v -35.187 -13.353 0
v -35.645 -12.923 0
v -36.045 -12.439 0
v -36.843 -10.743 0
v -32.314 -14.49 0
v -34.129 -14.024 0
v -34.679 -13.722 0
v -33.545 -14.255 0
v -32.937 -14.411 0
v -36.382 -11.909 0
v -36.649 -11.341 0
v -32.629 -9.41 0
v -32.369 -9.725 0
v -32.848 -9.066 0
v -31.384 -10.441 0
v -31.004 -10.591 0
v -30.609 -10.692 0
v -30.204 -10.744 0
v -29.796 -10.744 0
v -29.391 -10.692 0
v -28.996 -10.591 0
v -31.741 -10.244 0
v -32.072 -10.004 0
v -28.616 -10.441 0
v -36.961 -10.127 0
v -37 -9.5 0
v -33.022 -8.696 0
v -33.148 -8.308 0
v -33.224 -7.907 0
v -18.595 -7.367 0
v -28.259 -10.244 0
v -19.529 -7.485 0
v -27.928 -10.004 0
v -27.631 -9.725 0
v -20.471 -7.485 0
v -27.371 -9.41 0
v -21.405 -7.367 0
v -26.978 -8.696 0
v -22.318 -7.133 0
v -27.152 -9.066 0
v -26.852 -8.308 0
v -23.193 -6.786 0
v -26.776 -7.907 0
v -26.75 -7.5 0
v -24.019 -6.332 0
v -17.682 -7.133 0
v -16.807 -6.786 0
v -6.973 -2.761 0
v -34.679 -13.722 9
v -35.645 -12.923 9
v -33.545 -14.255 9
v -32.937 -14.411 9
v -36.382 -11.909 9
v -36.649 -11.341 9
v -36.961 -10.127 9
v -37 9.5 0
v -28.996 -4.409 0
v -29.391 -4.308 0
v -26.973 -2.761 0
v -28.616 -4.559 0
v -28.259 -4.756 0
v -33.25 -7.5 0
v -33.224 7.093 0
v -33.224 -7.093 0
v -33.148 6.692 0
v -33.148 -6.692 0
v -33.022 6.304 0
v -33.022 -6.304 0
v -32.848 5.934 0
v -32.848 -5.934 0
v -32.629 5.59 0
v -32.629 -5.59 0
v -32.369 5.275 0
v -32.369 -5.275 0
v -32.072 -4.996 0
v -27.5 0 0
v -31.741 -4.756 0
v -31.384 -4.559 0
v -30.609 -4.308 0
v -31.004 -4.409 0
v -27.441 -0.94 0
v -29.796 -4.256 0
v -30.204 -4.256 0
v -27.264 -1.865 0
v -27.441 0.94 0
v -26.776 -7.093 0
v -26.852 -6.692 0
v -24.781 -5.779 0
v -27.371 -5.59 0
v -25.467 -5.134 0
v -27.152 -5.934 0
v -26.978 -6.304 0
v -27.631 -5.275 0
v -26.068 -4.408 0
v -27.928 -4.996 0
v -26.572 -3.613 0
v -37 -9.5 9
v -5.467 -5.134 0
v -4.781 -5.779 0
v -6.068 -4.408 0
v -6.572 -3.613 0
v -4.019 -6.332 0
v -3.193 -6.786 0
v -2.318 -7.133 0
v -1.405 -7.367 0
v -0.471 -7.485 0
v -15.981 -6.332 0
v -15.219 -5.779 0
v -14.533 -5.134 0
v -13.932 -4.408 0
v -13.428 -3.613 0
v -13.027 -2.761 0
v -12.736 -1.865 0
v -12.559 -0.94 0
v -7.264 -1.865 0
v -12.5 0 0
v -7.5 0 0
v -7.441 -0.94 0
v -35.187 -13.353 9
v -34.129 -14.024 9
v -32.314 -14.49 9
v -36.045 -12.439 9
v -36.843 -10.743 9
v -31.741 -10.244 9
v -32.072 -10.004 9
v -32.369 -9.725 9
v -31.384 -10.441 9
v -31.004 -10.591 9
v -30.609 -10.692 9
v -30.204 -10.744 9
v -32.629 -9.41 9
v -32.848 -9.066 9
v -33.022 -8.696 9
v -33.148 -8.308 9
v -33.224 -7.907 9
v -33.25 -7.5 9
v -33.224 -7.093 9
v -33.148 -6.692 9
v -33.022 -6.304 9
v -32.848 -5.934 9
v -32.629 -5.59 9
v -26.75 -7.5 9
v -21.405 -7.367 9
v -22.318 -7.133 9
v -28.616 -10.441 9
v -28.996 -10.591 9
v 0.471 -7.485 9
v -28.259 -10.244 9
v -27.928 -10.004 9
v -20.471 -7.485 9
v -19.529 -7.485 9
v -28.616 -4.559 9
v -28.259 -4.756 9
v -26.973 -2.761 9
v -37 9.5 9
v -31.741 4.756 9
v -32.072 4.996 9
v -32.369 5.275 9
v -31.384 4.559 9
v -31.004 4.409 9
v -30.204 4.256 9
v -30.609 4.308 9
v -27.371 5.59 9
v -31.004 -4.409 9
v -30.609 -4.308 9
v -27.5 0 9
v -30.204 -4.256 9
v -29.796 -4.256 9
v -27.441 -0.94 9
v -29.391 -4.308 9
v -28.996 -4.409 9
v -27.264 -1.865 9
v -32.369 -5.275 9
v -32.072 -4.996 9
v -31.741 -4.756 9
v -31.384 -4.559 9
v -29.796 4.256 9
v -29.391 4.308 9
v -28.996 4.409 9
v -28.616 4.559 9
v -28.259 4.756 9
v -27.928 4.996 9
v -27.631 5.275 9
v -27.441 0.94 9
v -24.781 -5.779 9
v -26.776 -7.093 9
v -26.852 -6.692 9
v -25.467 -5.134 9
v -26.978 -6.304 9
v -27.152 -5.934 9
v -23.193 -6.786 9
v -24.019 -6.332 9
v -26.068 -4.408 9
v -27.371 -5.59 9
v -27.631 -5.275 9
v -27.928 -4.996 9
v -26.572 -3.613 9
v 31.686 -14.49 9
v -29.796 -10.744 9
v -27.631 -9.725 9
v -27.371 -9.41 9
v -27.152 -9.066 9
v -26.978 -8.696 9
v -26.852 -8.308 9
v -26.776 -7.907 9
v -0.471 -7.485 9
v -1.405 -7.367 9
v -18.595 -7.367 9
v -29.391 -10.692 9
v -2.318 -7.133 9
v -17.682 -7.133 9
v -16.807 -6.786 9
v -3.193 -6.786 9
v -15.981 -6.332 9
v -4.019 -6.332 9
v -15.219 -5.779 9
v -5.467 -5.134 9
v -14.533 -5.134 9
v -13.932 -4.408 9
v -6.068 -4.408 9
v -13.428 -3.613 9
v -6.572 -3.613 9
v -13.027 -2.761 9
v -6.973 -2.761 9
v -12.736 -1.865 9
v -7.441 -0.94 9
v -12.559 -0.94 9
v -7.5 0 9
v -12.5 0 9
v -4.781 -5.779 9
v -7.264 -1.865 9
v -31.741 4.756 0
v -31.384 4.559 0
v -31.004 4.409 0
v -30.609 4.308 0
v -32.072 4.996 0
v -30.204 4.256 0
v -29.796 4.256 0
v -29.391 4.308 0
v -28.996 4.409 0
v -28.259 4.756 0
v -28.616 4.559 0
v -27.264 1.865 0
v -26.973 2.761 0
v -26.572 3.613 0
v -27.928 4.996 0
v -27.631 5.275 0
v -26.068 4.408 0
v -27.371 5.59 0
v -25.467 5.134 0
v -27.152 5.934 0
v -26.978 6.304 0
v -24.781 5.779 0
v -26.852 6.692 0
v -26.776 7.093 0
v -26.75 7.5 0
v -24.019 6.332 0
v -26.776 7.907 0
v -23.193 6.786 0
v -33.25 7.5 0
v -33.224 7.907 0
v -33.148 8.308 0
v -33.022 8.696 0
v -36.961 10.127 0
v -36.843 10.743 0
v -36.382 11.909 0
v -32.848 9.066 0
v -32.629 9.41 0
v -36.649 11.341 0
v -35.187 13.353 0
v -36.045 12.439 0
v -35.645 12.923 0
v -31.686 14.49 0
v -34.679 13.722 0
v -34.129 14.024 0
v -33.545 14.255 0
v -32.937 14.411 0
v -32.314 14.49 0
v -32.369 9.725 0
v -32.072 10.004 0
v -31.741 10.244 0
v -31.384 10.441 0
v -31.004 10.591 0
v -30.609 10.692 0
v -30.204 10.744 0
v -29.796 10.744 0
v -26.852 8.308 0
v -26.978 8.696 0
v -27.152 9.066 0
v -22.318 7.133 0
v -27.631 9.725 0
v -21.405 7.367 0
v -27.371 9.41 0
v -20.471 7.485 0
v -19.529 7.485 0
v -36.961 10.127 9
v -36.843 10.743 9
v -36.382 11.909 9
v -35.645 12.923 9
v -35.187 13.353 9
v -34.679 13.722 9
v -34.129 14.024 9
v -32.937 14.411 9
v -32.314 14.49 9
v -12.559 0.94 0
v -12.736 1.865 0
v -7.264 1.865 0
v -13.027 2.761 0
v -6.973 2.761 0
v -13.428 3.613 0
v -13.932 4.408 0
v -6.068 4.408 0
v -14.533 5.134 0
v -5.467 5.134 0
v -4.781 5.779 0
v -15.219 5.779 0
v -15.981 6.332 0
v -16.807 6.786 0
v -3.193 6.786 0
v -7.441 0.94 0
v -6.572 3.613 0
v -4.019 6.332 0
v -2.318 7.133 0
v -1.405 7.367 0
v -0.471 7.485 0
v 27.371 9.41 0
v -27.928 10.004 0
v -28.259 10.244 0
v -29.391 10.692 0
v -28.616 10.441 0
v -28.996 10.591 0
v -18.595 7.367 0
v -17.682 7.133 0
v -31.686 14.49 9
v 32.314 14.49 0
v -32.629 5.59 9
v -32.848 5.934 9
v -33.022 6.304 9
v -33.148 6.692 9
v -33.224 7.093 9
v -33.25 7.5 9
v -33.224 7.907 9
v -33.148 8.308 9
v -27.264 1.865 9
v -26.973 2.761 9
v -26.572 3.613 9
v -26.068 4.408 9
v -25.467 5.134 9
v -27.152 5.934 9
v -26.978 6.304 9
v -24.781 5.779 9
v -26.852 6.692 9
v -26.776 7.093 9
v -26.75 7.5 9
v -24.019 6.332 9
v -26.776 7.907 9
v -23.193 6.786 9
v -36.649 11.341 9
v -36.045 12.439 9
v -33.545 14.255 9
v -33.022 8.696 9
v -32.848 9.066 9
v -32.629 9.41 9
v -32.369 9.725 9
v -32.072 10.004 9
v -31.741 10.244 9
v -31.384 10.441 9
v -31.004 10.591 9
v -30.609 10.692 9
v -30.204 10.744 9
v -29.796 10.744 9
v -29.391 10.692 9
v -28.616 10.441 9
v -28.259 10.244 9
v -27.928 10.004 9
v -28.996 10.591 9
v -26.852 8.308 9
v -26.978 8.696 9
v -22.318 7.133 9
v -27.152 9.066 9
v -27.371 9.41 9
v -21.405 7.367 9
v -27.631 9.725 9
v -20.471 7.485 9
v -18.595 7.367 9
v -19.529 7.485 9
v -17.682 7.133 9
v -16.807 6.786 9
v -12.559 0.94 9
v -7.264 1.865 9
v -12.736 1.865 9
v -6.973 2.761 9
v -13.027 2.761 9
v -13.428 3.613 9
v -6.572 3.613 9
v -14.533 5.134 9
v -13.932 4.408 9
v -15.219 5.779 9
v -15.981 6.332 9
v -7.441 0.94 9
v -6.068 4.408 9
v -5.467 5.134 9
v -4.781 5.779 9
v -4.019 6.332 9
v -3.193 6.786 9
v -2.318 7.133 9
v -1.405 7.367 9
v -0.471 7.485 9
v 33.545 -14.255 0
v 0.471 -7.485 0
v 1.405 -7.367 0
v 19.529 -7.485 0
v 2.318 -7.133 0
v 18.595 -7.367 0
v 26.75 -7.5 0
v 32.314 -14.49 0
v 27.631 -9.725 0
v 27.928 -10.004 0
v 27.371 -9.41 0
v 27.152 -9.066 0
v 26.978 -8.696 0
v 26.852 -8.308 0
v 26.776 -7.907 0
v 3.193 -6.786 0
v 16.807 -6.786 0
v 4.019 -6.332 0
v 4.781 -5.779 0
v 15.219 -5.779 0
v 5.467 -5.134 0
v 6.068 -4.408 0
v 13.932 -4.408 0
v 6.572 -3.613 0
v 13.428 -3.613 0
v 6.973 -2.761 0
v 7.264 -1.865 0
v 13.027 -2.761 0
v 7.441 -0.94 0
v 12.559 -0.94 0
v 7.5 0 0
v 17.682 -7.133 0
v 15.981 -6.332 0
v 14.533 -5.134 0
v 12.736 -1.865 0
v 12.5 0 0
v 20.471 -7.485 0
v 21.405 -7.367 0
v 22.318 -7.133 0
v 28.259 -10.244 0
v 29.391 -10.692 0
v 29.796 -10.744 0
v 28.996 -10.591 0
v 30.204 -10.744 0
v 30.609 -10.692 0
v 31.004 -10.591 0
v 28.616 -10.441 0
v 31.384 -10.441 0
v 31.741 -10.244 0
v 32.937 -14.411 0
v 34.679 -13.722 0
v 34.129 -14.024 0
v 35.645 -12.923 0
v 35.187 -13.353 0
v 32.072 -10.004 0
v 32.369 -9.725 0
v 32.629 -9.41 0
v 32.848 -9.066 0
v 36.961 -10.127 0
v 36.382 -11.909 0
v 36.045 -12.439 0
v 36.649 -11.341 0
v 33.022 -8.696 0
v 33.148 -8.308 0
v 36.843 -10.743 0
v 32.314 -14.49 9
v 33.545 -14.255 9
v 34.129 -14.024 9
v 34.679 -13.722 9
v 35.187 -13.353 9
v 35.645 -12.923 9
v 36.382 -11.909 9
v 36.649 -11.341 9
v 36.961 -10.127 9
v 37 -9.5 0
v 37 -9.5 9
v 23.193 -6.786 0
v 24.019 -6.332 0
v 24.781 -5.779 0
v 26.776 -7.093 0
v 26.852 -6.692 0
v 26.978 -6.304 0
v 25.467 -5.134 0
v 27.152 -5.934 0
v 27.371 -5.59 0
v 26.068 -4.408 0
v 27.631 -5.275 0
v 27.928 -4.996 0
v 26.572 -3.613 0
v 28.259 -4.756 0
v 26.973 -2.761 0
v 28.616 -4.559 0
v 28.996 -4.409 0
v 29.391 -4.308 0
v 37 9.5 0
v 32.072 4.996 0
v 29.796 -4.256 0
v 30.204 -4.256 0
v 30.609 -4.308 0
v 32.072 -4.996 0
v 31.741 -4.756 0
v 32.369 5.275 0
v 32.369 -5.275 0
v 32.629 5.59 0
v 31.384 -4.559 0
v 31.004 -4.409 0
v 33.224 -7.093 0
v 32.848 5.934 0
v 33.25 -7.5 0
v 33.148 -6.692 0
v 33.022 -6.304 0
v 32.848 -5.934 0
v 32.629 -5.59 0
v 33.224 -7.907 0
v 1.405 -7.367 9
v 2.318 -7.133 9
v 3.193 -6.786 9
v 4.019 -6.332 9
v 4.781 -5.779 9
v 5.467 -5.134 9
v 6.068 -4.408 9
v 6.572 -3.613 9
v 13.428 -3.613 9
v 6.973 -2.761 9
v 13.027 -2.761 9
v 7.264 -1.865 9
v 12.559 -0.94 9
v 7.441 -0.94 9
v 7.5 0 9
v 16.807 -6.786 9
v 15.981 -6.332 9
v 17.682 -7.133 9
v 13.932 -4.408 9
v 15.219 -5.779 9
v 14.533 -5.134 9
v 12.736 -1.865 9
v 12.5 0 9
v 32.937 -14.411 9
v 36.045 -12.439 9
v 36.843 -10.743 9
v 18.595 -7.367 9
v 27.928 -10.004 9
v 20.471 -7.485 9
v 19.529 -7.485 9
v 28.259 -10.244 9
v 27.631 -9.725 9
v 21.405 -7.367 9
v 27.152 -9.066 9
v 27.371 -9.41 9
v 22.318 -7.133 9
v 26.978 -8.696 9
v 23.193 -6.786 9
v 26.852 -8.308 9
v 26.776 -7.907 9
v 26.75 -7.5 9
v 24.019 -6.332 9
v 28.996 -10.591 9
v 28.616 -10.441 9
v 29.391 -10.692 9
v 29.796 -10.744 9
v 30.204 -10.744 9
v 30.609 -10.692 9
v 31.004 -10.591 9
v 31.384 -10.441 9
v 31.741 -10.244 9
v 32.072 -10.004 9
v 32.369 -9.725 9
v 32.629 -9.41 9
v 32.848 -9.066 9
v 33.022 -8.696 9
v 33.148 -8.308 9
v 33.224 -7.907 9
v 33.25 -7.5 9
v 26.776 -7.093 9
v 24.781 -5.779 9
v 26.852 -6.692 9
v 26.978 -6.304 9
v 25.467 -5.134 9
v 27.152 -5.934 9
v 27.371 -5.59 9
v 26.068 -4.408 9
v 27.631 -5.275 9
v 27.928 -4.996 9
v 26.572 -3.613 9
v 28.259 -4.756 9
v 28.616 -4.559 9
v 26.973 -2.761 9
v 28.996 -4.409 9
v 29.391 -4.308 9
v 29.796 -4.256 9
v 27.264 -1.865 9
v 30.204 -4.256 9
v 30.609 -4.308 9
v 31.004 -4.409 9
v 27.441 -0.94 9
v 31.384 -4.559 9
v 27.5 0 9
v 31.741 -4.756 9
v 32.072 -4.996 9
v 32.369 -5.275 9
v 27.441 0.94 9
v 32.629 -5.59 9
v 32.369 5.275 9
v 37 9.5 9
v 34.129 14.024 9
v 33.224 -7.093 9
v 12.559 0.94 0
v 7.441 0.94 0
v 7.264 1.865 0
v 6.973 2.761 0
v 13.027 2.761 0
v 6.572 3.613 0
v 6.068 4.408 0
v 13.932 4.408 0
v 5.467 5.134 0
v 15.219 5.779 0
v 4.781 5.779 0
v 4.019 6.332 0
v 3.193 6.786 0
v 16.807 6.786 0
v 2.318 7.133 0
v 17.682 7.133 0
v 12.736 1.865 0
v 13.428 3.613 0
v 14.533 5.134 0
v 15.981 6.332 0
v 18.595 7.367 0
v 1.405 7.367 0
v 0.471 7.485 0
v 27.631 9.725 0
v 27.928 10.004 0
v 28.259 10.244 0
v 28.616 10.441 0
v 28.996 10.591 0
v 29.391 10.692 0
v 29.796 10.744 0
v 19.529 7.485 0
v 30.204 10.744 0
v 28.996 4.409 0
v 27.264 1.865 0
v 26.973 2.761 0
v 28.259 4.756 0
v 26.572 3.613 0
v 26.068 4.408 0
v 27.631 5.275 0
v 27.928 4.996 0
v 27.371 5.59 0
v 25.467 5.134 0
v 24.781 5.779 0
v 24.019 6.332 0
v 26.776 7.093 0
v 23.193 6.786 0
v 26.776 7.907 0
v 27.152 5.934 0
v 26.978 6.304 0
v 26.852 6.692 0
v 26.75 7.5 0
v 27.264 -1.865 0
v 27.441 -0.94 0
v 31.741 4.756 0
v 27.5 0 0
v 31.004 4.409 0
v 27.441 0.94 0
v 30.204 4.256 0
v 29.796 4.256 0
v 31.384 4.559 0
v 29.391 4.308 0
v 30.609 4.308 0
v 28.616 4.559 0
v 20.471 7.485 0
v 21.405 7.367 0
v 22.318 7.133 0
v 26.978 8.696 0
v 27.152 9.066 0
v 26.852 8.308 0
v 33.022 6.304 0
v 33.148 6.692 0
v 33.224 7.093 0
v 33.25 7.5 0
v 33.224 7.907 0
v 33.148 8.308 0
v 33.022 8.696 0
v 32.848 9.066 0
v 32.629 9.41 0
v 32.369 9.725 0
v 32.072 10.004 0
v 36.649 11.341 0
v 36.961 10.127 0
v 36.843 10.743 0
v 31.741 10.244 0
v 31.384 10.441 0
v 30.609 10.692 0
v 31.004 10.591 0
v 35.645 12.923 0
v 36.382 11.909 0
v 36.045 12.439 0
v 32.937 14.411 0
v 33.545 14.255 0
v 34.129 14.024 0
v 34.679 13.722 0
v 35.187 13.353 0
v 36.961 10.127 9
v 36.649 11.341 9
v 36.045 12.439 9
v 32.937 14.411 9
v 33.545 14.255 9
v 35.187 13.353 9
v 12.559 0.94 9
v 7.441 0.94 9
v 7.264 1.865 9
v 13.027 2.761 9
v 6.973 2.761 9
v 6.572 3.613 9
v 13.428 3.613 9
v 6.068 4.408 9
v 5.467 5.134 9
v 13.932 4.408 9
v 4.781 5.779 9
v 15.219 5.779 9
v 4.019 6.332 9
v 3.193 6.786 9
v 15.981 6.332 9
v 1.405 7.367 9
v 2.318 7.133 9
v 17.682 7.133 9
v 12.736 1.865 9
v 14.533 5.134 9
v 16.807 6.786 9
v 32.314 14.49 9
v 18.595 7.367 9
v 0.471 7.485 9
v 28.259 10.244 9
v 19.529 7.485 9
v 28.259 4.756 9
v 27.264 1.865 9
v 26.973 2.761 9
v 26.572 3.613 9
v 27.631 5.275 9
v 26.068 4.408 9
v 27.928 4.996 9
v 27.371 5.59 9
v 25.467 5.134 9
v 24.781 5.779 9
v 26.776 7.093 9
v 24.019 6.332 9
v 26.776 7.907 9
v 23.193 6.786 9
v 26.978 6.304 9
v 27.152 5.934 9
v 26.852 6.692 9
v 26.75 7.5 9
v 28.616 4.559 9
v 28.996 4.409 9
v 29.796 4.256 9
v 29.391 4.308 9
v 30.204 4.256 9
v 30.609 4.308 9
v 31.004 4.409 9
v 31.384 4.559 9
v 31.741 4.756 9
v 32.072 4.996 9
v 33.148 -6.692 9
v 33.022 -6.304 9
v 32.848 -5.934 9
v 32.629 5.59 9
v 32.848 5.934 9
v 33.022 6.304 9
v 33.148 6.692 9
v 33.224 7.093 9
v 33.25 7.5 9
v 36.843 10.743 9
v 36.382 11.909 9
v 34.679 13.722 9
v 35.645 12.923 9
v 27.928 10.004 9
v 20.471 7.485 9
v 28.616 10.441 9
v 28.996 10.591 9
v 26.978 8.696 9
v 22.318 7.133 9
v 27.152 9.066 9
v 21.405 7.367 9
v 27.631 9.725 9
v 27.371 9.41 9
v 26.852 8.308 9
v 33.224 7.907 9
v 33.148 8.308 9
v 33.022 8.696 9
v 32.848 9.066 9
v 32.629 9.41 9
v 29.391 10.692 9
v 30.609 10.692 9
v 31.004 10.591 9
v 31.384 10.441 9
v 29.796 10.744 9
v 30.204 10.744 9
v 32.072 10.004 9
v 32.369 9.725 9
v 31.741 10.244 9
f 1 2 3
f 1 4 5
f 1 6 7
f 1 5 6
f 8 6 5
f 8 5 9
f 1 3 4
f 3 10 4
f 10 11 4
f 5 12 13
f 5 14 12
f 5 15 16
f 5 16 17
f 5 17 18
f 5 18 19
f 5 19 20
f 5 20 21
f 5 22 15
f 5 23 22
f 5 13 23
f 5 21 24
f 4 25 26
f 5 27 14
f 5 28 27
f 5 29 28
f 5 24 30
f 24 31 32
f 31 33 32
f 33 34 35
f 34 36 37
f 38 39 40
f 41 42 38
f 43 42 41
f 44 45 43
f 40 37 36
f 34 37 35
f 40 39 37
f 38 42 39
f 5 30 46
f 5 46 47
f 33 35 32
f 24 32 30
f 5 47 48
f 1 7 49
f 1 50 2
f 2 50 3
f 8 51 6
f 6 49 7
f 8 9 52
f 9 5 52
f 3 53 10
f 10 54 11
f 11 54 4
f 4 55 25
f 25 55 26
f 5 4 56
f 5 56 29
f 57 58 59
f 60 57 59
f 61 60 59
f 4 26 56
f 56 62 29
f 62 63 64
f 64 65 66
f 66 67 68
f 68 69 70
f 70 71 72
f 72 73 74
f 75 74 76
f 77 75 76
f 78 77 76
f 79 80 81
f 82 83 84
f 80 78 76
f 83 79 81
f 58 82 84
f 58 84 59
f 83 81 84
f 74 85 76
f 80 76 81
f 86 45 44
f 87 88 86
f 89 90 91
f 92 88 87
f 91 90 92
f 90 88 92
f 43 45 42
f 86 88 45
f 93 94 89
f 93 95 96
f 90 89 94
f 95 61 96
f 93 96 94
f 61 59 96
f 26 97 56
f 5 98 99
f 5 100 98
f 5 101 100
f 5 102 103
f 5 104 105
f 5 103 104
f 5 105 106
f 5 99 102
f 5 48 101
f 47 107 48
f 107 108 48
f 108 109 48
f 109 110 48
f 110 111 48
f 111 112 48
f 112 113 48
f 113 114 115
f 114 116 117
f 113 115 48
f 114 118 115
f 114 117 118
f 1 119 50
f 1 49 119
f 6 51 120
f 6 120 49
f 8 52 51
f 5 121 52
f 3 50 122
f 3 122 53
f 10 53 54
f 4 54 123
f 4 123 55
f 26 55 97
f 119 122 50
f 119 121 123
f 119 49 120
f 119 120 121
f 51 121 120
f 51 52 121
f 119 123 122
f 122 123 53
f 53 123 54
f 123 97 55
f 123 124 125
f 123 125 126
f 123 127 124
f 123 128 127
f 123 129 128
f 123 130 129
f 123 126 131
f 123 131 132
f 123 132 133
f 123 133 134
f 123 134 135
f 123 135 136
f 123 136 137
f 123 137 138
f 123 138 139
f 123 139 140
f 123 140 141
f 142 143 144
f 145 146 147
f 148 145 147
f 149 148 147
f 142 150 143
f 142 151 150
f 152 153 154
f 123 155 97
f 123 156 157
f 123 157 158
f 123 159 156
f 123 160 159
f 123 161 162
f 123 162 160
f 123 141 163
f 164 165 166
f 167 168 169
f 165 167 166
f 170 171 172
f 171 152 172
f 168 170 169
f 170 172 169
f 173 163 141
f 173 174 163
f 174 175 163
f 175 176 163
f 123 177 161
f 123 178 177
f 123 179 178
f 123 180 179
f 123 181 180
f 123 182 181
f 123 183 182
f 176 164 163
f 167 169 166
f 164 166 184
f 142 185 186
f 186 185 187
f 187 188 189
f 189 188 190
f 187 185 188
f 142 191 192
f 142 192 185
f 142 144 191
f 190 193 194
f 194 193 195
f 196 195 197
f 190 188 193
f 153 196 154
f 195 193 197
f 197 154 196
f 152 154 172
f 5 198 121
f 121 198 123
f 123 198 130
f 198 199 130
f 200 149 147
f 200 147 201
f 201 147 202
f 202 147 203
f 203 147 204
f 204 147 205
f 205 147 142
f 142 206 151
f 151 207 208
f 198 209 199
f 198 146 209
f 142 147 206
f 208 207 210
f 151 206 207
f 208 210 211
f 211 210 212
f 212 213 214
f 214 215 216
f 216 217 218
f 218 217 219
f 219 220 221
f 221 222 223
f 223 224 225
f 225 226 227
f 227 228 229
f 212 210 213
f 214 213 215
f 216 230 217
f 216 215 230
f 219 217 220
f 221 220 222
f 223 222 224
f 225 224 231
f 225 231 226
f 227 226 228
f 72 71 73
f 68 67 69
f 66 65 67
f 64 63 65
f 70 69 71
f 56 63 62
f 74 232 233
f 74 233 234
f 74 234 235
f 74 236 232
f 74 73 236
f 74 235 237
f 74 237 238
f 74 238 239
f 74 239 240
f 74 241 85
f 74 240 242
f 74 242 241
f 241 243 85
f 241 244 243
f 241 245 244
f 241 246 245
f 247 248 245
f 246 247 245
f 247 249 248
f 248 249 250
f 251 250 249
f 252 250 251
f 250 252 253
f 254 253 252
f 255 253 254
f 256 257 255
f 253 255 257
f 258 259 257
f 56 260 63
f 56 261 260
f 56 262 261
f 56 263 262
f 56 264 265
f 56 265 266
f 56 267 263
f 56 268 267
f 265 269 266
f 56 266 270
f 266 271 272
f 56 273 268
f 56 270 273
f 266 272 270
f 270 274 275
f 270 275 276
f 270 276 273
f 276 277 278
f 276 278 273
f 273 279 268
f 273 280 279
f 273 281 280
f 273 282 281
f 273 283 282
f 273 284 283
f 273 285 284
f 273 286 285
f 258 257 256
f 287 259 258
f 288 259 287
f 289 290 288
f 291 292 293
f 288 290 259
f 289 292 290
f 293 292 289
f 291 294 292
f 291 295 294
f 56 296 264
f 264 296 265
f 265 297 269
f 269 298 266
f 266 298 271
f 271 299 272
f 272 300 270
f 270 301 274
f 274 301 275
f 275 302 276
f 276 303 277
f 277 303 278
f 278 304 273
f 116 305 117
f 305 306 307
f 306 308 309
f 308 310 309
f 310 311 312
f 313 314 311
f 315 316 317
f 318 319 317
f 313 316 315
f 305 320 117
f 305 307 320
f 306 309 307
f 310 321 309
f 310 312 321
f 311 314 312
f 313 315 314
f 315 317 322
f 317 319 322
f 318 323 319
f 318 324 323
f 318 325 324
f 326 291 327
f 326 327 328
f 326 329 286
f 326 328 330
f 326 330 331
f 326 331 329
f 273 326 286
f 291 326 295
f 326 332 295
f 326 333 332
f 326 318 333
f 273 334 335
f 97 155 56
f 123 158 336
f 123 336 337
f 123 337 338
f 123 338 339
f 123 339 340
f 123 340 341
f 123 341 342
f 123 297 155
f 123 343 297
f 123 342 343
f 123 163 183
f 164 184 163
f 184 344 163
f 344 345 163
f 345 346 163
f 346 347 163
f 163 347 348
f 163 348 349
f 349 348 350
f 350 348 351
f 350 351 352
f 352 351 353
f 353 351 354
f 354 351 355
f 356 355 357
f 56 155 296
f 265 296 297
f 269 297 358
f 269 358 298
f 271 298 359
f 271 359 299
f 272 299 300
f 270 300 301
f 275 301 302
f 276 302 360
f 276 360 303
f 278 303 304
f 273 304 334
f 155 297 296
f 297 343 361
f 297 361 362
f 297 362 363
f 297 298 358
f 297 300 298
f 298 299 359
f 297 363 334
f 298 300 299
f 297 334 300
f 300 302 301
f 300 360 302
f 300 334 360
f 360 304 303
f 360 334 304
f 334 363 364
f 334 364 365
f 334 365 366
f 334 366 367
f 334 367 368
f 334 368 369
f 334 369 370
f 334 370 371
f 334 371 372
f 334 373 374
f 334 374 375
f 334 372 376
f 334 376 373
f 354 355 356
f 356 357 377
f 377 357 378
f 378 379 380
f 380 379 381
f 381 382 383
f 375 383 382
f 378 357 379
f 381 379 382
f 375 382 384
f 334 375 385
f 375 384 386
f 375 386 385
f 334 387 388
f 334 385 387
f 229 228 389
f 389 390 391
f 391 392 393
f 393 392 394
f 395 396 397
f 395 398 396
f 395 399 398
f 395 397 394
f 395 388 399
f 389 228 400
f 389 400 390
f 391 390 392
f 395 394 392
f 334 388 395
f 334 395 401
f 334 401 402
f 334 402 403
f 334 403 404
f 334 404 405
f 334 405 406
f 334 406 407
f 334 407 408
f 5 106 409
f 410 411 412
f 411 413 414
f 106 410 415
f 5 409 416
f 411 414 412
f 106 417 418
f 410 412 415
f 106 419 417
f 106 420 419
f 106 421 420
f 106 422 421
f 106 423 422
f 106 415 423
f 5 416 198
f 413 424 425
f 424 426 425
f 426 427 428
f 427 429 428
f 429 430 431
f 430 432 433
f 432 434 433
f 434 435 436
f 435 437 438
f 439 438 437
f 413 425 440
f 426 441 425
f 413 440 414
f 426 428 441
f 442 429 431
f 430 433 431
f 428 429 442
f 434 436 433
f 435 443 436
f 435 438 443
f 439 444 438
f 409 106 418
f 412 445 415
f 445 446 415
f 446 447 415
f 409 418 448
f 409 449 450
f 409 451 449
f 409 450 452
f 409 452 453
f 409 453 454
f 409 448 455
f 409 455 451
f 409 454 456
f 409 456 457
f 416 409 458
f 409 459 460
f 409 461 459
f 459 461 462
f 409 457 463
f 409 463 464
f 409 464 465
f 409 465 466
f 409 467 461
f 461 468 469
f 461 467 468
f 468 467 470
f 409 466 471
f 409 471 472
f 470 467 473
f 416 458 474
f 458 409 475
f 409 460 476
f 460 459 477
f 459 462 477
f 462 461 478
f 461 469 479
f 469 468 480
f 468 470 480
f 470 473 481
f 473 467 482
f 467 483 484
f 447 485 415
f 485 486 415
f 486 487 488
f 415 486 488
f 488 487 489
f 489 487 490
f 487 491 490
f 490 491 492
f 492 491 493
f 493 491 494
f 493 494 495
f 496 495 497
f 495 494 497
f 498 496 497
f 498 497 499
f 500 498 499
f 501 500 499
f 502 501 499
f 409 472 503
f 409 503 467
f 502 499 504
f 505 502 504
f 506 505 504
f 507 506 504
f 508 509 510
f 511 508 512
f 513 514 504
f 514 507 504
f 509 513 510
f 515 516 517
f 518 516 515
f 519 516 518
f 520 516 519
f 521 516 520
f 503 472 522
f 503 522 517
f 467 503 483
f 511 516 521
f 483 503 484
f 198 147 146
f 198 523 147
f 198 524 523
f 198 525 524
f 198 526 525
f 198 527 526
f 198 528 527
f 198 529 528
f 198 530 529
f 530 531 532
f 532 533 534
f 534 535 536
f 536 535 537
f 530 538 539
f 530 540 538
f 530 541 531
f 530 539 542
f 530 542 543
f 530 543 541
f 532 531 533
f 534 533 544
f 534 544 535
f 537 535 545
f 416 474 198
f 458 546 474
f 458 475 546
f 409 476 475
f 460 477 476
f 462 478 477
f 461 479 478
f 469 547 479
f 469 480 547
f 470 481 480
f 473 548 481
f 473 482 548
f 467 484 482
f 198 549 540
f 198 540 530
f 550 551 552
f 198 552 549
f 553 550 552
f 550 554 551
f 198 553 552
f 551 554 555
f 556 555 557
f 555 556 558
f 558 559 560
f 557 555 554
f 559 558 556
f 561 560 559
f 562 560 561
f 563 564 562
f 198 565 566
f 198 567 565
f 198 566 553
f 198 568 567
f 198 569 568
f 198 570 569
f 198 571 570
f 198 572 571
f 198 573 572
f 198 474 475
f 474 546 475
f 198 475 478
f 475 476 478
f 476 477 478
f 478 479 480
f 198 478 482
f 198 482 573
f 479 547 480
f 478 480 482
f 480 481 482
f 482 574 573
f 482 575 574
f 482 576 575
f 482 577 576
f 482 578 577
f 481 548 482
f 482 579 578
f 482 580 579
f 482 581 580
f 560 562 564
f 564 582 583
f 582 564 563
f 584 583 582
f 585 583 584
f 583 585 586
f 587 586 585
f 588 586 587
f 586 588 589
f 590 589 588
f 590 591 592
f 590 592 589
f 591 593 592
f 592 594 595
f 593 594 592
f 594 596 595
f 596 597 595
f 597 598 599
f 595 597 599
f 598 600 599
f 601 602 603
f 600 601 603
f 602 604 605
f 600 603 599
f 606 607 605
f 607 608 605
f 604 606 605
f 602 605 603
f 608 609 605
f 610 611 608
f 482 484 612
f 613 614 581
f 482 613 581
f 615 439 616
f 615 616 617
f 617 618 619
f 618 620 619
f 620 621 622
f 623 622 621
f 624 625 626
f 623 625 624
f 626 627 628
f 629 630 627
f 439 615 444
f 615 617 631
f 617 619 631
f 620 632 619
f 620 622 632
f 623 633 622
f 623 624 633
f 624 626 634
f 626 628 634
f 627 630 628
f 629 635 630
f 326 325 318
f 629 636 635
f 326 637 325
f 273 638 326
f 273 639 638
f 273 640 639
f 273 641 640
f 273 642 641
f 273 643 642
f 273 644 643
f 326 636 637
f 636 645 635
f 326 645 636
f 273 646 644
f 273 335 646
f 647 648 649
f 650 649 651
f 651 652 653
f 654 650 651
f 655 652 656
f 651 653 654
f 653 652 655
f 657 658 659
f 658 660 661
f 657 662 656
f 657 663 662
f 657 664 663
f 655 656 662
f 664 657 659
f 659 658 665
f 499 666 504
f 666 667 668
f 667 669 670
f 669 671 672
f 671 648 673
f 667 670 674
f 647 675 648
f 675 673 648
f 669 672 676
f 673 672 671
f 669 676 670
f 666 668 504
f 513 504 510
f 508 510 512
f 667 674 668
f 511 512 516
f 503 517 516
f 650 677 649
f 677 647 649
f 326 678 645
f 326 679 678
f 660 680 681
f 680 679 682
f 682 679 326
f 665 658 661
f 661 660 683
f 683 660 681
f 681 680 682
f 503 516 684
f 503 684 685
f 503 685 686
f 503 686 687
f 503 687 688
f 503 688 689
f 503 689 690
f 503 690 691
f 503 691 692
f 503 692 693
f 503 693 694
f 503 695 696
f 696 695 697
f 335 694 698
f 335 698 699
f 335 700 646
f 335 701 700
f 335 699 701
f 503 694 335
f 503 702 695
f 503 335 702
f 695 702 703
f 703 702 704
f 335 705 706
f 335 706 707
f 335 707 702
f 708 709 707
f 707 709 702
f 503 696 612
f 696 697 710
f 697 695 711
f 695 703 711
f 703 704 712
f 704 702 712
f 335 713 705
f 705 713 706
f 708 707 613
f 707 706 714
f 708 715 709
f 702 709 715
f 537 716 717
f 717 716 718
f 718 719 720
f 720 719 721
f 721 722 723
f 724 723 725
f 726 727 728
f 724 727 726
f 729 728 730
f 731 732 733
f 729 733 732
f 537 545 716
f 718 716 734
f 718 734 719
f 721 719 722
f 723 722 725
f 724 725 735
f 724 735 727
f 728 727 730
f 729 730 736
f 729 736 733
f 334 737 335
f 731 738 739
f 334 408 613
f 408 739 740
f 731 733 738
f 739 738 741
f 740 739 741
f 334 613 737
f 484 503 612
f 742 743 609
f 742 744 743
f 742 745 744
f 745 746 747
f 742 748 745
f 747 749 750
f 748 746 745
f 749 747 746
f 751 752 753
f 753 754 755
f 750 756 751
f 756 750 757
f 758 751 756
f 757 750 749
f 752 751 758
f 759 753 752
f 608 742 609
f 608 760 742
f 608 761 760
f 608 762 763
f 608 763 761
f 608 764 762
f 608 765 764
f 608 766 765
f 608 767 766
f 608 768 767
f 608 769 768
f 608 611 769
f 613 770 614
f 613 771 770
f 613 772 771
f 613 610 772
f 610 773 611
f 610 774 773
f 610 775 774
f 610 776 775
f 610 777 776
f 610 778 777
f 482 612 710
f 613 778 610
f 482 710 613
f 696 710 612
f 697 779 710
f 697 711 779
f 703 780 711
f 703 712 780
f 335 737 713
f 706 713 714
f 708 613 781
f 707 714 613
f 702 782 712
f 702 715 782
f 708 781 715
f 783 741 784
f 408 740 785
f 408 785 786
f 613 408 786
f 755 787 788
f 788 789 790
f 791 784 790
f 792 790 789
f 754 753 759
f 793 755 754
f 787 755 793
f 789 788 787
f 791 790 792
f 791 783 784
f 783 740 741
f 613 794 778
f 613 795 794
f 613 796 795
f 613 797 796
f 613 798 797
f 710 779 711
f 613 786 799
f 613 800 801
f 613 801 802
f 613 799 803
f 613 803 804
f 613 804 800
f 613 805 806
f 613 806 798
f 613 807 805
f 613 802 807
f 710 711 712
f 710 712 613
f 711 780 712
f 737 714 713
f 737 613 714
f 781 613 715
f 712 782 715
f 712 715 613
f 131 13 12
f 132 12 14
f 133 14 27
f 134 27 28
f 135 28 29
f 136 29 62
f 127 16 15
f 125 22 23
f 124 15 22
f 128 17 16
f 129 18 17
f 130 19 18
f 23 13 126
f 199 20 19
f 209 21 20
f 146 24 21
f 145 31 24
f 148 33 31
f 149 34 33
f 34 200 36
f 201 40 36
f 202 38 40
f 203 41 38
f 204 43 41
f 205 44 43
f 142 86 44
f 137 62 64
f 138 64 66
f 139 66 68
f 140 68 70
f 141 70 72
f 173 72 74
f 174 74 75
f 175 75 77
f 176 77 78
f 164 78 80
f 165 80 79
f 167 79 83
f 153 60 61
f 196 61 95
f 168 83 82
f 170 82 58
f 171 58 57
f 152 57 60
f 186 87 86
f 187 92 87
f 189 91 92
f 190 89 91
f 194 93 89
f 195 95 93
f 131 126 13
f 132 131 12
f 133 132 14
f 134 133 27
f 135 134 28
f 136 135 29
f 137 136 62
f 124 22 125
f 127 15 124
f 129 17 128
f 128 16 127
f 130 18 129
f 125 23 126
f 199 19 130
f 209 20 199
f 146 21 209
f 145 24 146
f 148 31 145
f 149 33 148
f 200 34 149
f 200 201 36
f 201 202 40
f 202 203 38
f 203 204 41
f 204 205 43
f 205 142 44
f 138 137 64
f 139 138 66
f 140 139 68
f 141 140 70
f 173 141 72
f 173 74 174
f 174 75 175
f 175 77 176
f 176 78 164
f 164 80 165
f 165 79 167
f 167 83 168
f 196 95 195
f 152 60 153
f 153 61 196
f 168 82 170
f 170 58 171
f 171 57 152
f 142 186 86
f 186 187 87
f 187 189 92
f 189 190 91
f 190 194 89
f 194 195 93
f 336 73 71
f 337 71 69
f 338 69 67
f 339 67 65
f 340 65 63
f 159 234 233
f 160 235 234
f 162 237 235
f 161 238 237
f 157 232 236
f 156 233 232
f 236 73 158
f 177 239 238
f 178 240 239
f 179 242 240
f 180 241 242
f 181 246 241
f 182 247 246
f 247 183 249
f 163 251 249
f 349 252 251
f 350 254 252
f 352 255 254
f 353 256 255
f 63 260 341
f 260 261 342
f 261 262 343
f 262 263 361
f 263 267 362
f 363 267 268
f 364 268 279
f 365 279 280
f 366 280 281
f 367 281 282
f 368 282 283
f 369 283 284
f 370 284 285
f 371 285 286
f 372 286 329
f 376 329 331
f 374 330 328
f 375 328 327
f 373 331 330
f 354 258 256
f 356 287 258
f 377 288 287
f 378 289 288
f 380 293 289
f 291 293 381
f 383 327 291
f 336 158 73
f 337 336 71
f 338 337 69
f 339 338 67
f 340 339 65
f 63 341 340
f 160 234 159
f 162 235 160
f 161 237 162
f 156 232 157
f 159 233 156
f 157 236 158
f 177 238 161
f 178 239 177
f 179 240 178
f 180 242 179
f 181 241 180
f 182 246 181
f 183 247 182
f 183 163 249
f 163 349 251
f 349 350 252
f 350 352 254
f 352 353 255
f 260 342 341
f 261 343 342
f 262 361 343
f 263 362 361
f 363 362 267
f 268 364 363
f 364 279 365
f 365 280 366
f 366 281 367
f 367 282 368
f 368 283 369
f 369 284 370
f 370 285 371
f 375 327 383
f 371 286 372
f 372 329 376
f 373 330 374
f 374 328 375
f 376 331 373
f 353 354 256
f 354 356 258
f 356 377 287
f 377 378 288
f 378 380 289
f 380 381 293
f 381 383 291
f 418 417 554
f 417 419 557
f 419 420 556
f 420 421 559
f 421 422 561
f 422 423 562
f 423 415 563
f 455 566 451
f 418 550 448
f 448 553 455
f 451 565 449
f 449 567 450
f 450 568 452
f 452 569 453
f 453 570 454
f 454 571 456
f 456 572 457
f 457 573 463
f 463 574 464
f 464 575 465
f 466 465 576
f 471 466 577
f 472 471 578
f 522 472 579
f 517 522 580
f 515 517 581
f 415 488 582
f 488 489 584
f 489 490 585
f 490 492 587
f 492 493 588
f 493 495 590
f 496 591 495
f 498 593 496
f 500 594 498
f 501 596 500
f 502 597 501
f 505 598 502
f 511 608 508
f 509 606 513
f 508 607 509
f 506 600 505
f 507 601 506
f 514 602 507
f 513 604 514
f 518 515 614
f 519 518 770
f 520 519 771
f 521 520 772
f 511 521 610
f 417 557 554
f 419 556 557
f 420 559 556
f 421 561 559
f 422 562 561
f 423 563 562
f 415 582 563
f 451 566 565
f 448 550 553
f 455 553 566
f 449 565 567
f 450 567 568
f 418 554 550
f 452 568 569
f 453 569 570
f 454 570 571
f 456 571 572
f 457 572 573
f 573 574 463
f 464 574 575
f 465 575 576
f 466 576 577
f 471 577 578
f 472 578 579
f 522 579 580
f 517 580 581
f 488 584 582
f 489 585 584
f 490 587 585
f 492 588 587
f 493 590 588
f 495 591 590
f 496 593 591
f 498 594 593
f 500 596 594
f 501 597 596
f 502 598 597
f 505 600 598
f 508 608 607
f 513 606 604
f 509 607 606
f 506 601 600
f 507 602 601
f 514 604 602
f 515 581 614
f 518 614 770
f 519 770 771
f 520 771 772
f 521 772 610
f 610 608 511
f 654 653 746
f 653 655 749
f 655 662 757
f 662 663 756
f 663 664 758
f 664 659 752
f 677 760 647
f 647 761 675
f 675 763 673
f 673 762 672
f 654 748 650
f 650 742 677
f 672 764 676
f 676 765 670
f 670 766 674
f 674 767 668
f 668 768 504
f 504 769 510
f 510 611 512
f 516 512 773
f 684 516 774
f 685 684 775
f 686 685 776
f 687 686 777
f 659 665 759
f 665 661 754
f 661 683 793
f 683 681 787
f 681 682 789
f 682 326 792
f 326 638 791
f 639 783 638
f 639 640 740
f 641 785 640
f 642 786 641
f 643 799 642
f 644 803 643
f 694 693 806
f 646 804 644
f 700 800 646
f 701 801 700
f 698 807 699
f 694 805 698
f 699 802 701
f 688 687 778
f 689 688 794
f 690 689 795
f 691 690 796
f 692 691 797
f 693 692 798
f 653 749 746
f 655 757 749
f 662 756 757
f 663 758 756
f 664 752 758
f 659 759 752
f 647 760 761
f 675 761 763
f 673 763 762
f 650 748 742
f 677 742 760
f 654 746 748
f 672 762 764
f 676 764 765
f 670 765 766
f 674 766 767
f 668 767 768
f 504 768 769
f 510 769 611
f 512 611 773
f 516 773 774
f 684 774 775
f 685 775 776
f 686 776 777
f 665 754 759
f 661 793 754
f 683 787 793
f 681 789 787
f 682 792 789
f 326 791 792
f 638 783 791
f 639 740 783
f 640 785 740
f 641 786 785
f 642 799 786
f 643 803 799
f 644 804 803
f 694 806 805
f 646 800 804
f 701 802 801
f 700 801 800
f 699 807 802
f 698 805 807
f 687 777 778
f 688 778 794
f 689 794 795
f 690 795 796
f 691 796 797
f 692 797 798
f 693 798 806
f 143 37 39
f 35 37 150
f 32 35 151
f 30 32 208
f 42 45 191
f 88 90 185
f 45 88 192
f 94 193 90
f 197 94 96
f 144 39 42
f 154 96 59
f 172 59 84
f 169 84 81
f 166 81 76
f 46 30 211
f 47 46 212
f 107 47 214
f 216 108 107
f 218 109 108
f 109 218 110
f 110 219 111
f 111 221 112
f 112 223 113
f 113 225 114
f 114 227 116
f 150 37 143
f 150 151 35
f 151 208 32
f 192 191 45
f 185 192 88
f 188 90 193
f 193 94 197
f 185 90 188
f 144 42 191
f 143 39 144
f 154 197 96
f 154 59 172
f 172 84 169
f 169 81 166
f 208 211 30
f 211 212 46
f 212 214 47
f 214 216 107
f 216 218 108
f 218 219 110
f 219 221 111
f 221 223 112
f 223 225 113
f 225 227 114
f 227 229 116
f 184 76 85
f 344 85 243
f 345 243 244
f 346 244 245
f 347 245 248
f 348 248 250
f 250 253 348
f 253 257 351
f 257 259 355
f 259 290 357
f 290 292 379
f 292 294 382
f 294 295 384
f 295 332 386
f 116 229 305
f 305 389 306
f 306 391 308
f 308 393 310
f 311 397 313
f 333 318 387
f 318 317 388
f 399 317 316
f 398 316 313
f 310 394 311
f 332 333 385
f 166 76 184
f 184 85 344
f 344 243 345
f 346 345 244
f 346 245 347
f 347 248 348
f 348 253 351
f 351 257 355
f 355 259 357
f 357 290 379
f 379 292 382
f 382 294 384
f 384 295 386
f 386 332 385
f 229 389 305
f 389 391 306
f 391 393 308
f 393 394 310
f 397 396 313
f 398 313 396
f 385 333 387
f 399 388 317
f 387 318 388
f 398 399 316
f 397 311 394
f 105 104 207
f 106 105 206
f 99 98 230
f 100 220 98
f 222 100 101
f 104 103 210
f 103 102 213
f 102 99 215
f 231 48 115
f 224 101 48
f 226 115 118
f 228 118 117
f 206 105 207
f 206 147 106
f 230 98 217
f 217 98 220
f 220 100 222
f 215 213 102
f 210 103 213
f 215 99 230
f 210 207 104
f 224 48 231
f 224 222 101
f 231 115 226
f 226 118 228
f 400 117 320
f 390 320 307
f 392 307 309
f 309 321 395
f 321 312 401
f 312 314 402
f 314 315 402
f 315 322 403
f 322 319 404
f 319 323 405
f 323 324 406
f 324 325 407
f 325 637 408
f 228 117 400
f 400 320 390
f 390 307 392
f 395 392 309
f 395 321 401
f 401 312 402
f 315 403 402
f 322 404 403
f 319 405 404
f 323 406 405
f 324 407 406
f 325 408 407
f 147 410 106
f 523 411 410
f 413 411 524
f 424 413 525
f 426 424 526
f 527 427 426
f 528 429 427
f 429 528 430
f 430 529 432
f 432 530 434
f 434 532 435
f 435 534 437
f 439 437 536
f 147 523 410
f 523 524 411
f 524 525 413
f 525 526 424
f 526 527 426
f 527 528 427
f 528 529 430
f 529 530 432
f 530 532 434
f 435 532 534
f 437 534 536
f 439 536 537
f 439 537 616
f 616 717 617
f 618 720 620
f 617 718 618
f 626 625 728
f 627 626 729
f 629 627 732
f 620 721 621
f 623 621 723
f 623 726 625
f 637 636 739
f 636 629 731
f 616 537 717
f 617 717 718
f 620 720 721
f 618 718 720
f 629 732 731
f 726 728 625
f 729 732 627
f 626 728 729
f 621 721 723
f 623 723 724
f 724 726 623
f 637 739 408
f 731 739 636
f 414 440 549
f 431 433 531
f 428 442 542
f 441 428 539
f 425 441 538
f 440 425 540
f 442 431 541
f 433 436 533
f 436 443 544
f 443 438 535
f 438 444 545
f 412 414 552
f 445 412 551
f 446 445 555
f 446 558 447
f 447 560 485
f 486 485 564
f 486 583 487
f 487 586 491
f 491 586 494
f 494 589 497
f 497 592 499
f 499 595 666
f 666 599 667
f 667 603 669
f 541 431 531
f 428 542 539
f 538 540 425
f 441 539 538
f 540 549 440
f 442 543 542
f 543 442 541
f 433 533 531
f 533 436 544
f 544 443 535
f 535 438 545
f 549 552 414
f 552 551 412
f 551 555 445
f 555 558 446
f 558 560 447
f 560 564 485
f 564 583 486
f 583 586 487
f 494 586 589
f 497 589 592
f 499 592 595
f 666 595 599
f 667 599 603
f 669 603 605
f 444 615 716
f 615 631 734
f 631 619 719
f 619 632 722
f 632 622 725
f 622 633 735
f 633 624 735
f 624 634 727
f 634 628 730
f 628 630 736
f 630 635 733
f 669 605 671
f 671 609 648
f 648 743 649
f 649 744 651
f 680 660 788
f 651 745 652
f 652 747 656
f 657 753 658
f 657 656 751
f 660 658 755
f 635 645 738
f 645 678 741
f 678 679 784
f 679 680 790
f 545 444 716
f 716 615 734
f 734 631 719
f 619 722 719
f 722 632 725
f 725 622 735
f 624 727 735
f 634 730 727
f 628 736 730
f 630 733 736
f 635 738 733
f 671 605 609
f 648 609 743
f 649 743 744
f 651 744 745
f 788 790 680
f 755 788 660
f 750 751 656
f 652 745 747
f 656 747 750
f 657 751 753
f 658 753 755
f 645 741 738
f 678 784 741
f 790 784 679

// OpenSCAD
$fn = 50;

difference() {
	union() {
		hull() {
			translate(v = [-32.0, 9.5, 0]) {
				cylinder(h = 9, r = 5);
			}
			translate(v = [32.0, 9.5, 0]) {
				cylinder(h = 9, r = 5);
			}
			translate(v = [-32.0, -9.5, 0]) {
				cylinder(h = 9, r = 5);
			}
			translate(v = [32.0, -9.5, 0]) {
				cylinder(h = 9, r = 5);
			}
		}
	}
	union() {
		translate(v = [-30.0, -7.5, -100.0]) {
			cylinder(h = 200, r = 3.25);
		}
		translate(v = [-30.0, 7.5, -100.0]) {
			cylinder(h = 200, r = 3.25);
		}
		translate(v = [30.0, -7.5, -100.0]) {
			cylinder(h = 200, r = 3.25);
		}
		translate(v = [30.0, 7.5, -100.0]) {
			cylinder(h = 200, r = 3.25);
		}
		translate(v = [-30.0, -7.5, -100.0]) {
			cylinder(h = 200, r = 1.8);
		}
		translate(v = [-30.0, 7.5, -100.0]) {
			cylinder(h = 200, r = 1.8);
		}
		translate(v = [30.0, -7.5, -100.0]) {
			cylinder(h = 200, r = 1.8);
		}
		translate(v = [30.0, 7.5, -100.0]) {
			cylinder(h = 200, r = 1.8);
		}
		translate(v = [-20.0, 0, 0.0]) {
			cylinder(h = 9, r = 7.5);
		}
		cylinder(h = 9, r = 7.5);
		translate(v = [20.0, 0, 0.0]) {
			cylinder(h = 9, r = 7.5);
		}
	}
}
